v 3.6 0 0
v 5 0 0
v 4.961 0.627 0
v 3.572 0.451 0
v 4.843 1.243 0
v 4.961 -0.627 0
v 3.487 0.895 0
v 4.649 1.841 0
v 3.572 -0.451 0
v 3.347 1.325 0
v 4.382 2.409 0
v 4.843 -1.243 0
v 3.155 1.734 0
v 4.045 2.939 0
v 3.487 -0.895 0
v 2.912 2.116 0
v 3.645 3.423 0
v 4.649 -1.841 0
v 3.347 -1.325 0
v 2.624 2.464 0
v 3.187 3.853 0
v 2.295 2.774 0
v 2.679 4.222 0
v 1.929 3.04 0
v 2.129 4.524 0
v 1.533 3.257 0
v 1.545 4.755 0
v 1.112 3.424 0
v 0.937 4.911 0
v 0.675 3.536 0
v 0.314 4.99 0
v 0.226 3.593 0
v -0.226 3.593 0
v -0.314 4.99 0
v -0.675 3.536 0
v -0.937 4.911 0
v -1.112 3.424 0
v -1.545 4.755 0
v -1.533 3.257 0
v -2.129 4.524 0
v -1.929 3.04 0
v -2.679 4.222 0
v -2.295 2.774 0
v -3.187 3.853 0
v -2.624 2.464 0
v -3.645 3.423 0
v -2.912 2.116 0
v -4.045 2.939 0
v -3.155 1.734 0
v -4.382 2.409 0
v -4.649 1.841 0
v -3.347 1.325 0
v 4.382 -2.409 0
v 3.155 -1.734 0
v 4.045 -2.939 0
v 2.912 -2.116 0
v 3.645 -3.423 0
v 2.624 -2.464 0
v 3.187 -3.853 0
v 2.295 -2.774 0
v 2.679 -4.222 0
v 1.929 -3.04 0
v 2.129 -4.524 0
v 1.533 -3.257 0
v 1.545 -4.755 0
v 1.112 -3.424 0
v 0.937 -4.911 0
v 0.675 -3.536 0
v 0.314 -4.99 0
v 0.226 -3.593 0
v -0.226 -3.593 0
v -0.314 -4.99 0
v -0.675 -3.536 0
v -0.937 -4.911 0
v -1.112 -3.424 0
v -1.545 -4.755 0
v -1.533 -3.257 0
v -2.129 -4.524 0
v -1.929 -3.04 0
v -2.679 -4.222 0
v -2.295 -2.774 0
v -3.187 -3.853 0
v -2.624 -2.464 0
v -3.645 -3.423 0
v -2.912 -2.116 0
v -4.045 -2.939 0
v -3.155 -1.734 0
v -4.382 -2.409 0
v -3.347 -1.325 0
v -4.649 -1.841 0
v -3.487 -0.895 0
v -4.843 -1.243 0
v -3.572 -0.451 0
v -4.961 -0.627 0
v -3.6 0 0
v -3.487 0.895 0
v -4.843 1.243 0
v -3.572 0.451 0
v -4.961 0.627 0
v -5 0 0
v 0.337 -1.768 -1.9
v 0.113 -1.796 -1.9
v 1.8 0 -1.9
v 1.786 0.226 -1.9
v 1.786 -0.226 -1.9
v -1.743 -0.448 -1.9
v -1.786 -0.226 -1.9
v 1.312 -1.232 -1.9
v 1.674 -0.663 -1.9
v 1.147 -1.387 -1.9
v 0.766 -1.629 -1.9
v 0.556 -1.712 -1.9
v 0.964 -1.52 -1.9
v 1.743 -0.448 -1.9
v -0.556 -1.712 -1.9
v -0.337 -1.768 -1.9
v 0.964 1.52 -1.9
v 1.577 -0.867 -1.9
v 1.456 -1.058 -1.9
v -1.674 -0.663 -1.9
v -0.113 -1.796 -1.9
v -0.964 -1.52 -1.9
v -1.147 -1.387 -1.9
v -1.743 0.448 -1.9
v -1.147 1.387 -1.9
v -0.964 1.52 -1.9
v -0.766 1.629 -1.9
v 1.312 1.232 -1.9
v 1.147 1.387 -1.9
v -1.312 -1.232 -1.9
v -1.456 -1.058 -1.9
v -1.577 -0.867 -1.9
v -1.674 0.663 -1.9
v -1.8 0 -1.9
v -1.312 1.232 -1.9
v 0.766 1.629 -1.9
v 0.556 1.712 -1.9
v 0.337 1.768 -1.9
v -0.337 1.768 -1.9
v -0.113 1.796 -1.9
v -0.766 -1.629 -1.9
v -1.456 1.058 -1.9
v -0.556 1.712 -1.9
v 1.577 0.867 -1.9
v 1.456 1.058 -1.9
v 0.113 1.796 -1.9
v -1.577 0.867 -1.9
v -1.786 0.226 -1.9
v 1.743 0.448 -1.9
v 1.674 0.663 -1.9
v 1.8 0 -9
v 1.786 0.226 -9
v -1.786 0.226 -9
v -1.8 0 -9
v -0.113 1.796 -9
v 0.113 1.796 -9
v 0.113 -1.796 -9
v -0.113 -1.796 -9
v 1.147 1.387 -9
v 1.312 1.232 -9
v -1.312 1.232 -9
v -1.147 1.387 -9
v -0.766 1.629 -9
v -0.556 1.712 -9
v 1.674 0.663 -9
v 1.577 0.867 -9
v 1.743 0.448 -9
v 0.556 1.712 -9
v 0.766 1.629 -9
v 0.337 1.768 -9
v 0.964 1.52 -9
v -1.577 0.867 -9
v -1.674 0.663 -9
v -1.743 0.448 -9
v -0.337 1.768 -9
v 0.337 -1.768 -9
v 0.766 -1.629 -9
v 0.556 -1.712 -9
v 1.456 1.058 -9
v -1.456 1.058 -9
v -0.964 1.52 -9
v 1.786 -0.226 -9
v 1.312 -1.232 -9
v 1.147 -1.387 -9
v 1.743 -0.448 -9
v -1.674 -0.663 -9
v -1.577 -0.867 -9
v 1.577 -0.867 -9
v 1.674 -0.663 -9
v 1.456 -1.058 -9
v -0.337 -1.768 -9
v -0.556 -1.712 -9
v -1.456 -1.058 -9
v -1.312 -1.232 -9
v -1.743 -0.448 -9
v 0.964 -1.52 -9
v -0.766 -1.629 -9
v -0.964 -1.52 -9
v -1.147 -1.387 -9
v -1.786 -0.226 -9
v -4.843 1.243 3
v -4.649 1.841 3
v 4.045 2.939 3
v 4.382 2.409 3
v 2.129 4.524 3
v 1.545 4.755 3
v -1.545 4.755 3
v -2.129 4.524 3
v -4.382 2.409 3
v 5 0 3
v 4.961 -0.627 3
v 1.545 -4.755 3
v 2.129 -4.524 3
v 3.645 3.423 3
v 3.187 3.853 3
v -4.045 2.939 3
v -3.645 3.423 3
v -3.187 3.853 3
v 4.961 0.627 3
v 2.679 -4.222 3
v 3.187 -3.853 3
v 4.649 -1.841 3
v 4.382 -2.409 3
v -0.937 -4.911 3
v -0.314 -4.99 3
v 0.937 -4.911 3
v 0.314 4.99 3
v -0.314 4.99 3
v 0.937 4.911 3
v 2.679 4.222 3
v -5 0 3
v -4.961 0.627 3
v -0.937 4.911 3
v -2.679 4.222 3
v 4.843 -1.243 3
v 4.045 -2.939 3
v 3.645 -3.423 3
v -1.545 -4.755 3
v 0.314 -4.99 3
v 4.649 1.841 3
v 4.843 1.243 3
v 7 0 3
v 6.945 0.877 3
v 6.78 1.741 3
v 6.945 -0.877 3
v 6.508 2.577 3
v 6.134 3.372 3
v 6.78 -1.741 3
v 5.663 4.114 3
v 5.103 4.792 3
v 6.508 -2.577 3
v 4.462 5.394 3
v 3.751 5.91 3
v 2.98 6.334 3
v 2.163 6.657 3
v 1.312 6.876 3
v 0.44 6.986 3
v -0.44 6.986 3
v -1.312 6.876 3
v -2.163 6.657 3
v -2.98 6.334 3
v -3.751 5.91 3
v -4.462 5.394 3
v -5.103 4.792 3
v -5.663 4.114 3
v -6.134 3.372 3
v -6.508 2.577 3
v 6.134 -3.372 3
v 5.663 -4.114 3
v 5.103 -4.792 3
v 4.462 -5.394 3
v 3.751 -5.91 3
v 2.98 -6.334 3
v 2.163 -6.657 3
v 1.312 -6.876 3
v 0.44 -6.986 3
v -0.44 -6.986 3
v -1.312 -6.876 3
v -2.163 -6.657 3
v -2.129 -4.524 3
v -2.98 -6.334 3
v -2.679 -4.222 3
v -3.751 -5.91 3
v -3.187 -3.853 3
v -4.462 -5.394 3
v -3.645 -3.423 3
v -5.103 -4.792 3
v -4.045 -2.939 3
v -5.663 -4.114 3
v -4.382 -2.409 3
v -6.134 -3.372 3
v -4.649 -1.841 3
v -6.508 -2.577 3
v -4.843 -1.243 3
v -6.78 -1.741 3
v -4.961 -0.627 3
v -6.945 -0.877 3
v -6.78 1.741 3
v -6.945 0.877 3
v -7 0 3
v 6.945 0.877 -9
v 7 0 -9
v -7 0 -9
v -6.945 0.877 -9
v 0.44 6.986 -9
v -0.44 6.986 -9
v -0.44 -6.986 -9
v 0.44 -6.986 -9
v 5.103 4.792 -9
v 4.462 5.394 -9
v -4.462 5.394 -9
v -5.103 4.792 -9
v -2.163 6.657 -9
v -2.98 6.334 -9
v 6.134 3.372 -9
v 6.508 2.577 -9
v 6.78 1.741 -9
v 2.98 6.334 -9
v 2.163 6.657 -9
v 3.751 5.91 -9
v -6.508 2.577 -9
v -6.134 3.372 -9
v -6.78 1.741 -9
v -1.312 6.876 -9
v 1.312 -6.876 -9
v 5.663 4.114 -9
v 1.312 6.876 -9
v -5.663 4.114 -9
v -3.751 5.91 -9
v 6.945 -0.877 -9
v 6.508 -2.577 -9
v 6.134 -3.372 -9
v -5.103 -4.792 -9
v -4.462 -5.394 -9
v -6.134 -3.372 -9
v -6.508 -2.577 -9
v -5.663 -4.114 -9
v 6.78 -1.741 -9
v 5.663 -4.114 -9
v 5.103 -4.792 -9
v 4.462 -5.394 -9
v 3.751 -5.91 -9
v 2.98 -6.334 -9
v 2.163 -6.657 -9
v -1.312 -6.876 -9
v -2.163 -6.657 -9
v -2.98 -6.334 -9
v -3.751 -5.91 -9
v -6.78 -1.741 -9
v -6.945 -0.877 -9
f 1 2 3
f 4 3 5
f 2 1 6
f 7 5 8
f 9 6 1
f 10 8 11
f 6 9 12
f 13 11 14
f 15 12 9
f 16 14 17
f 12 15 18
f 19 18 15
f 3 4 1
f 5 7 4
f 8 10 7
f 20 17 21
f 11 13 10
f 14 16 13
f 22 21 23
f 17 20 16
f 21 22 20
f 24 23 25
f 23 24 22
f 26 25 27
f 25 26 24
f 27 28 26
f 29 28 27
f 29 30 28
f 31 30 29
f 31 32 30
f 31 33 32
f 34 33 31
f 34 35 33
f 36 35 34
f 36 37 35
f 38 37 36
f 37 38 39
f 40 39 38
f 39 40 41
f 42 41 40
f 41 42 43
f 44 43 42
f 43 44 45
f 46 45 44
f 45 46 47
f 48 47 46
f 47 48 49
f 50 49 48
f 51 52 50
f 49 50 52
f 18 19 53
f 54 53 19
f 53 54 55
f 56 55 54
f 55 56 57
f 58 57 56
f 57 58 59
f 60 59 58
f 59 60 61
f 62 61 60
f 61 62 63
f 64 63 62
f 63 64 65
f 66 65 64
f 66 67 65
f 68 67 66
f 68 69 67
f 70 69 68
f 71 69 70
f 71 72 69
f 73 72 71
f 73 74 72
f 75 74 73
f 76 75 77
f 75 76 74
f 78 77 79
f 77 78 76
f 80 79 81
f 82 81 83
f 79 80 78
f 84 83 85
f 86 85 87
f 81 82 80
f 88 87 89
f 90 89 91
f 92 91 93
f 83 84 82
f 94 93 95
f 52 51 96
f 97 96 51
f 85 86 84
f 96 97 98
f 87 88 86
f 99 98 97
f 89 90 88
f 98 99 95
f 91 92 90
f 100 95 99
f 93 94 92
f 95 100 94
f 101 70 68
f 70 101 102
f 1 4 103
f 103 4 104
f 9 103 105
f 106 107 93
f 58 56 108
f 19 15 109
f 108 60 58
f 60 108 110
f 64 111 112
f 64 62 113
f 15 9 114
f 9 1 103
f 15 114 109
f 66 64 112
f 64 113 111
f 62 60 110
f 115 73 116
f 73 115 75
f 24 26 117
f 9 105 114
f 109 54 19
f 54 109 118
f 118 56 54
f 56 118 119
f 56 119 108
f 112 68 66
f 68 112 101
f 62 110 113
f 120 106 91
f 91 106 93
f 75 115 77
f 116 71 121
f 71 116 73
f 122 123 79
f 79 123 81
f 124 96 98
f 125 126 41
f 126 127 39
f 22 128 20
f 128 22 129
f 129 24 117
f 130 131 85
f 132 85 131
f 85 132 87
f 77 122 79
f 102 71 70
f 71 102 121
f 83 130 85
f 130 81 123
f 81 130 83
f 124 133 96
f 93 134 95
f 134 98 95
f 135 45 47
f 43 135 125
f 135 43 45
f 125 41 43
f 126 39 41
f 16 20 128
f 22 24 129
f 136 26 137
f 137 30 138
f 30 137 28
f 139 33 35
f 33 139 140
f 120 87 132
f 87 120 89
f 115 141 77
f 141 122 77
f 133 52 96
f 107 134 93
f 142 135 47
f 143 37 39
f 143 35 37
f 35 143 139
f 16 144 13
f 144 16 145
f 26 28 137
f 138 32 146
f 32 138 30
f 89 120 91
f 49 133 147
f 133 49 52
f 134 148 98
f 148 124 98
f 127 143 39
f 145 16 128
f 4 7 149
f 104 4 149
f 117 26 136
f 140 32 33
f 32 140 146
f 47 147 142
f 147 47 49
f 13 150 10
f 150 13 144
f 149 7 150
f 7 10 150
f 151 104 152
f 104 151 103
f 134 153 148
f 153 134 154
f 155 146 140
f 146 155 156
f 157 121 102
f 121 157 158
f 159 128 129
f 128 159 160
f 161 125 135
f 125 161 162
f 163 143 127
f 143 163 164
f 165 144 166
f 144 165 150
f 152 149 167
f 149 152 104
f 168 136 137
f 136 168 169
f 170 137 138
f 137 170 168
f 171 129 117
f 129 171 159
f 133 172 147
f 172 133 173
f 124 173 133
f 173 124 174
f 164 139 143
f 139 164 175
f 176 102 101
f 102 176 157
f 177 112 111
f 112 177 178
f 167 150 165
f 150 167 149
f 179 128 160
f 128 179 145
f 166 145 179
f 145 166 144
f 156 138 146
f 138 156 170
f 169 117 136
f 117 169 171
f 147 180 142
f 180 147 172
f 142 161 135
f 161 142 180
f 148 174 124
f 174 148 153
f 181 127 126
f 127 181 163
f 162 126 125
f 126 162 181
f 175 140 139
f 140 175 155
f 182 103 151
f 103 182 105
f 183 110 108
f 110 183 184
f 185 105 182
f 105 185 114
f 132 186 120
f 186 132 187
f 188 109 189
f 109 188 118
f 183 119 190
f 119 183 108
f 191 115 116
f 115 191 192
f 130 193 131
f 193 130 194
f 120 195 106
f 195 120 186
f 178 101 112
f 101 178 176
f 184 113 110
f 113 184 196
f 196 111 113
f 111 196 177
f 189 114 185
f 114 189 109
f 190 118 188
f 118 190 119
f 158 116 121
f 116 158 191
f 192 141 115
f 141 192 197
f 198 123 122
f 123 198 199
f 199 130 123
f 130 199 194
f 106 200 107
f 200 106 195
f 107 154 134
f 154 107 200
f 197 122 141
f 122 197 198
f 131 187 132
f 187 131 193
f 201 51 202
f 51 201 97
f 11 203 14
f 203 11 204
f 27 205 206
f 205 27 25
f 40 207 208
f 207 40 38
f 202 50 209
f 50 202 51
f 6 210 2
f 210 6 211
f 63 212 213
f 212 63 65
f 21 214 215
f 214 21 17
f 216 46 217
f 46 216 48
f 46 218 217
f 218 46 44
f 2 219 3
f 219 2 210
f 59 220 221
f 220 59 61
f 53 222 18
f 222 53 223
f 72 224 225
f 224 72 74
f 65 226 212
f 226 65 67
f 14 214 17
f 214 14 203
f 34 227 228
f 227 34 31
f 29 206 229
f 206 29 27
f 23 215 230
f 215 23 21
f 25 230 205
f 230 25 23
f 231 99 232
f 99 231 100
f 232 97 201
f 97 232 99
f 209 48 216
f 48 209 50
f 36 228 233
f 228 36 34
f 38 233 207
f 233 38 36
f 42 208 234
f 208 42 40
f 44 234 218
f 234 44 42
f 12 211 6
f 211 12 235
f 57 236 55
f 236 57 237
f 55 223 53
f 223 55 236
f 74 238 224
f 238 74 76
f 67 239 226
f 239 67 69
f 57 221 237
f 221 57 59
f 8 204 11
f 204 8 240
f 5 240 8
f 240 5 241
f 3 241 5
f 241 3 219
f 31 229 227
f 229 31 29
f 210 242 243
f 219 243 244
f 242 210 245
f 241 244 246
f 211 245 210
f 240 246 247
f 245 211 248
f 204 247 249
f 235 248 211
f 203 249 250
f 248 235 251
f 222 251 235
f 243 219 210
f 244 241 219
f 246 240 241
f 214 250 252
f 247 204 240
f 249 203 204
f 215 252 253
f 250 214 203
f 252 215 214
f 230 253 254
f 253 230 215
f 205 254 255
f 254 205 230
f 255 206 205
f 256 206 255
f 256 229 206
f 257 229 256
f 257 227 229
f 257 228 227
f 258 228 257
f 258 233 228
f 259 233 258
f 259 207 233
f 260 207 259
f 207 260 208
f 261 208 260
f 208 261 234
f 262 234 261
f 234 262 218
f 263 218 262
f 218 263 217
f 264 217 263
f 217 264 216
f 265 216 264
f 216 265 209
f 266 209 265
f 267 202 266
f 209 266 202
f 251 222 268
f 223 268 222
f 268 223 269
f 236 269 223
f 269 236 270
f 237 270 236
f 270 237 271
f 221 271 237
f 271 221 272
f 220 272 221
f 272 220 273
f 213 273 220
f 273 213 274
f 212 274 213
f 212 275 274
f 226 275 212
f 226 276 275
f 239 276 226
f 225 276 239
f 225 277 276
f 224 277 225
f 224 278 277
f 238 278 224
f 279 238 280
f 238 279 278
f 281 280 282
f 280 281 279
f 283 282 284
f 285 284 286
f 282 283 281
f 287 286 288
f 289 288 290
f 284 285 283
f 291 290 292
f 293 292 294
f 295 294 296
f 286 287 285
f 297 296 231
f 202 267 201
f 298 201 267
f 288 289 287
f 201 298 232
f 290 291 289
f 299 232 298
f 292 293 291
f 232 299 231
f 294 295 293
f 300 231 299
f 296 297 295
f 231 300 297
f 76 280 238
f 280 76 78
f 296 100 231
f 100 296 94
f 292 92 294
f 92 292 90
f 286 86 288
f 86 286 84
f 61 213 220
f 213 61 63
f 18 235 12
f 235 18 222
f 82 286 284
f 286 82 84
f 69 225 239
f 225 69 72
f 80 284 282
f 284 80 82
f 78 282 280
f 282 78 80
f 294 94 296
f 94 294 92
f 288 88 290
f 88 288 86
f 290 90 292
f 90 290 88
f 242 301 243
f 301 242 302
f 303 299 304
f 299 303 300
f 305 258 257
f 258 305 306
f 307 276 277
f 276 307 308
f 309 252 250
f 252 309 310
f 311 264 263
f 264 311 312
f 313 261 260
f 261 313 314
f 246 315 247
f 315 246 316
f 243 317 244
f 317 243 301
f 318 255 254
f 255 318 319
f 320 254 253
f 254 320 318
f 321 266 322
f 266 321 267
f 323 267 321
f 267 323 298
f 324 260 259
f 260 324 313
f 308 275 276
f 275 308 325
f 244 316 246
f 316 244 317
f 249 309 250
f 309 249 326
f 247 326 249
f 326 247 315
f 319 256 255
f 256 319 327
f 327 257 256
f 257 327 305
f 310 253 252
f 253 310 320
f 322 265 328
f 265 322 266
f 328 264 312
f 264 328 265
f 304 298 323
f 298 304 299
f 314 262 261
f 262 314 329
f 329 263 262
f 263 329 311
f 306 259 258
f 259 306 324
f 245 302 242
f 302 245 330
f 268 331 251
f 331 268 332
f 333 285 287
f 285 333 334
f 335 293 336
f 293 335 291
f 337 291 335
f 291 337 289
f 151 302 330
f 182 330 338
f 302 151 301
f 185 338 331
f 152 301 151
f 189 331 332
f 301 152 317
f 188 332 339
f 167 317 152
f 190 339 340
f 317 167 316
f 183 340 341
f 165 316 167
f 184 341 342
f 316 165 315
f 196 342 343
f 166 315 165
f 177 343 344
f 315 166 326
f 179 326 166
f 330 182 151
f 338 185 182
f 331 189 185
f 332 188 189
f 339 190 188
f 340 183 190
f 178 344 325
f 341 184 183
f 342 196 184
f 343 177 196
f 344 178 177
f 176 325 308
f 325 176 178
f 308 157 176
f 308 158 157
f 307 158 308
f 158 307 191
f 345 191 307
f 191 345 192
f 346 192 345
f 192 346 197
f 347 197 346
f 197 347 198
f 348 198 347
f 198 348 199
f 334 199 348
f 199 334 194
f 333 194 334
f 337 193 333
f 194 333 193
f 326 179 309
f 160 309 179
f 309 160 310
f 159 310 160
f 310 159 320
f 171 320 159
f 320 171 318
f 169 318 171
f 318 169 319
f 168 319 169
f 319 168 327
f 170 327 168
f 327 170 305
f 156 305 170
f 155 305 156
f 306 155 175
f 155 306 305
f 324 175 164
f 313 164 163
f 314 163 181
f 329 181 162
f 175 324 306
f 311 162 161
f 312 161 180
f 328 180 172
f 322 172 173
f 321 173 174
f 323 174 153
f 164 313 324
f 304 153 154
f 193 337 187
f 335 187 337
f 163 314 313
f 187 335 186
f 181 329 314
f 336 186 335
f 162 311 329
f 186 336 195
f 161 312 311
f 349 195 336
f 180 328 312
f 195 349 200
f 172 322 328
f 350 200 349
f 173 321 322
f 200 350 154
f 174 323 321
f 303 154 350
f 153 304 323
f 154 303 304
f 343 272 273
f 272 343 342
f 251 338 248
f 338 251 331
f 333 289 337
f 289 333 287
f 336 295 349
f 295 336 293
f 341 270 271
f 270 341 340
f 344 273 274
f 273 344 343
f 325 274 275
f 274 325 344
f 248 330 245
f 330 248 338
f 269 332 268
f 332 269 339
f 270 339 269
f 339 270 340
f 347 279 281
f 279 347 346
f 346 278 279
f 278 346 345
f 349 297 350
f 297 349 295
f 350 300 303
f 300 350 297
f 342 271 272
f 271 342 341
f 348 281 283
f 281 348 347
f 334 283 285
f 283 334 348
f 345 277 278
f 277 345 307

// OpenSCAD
$fn = 50;

difference() {
	union() {
		translate(v = [0, 0, -9.0]) {
			cylinder(h = 12, r = 7.0);
		}
	}
	union() {
		translate(v = [0, 0, 0]) {
			rotate(a = [0, 0, 0]) {
				difference() {
					union() {
						translate(v = [0, 0, -12.0]) {
							cylinder(h = 12, r = 1.5);
						}
						translate(v = [0, 0, -1.9]) {
							cylinder(h = 1.9, r1 = 1.8, r2 = 3.6);
						}
						translate(v = [0, 0, -12.0]) {
							cylinder(h = 12, r = 1.8);
						}
						translate(v = [0, 0, -12.0]) {
							cylinder(h = 12, r = 1.5);
						}
					}
					union();
				}
			}
		}
		#cylinder(h = 3, r = 5.0);
	}
}
